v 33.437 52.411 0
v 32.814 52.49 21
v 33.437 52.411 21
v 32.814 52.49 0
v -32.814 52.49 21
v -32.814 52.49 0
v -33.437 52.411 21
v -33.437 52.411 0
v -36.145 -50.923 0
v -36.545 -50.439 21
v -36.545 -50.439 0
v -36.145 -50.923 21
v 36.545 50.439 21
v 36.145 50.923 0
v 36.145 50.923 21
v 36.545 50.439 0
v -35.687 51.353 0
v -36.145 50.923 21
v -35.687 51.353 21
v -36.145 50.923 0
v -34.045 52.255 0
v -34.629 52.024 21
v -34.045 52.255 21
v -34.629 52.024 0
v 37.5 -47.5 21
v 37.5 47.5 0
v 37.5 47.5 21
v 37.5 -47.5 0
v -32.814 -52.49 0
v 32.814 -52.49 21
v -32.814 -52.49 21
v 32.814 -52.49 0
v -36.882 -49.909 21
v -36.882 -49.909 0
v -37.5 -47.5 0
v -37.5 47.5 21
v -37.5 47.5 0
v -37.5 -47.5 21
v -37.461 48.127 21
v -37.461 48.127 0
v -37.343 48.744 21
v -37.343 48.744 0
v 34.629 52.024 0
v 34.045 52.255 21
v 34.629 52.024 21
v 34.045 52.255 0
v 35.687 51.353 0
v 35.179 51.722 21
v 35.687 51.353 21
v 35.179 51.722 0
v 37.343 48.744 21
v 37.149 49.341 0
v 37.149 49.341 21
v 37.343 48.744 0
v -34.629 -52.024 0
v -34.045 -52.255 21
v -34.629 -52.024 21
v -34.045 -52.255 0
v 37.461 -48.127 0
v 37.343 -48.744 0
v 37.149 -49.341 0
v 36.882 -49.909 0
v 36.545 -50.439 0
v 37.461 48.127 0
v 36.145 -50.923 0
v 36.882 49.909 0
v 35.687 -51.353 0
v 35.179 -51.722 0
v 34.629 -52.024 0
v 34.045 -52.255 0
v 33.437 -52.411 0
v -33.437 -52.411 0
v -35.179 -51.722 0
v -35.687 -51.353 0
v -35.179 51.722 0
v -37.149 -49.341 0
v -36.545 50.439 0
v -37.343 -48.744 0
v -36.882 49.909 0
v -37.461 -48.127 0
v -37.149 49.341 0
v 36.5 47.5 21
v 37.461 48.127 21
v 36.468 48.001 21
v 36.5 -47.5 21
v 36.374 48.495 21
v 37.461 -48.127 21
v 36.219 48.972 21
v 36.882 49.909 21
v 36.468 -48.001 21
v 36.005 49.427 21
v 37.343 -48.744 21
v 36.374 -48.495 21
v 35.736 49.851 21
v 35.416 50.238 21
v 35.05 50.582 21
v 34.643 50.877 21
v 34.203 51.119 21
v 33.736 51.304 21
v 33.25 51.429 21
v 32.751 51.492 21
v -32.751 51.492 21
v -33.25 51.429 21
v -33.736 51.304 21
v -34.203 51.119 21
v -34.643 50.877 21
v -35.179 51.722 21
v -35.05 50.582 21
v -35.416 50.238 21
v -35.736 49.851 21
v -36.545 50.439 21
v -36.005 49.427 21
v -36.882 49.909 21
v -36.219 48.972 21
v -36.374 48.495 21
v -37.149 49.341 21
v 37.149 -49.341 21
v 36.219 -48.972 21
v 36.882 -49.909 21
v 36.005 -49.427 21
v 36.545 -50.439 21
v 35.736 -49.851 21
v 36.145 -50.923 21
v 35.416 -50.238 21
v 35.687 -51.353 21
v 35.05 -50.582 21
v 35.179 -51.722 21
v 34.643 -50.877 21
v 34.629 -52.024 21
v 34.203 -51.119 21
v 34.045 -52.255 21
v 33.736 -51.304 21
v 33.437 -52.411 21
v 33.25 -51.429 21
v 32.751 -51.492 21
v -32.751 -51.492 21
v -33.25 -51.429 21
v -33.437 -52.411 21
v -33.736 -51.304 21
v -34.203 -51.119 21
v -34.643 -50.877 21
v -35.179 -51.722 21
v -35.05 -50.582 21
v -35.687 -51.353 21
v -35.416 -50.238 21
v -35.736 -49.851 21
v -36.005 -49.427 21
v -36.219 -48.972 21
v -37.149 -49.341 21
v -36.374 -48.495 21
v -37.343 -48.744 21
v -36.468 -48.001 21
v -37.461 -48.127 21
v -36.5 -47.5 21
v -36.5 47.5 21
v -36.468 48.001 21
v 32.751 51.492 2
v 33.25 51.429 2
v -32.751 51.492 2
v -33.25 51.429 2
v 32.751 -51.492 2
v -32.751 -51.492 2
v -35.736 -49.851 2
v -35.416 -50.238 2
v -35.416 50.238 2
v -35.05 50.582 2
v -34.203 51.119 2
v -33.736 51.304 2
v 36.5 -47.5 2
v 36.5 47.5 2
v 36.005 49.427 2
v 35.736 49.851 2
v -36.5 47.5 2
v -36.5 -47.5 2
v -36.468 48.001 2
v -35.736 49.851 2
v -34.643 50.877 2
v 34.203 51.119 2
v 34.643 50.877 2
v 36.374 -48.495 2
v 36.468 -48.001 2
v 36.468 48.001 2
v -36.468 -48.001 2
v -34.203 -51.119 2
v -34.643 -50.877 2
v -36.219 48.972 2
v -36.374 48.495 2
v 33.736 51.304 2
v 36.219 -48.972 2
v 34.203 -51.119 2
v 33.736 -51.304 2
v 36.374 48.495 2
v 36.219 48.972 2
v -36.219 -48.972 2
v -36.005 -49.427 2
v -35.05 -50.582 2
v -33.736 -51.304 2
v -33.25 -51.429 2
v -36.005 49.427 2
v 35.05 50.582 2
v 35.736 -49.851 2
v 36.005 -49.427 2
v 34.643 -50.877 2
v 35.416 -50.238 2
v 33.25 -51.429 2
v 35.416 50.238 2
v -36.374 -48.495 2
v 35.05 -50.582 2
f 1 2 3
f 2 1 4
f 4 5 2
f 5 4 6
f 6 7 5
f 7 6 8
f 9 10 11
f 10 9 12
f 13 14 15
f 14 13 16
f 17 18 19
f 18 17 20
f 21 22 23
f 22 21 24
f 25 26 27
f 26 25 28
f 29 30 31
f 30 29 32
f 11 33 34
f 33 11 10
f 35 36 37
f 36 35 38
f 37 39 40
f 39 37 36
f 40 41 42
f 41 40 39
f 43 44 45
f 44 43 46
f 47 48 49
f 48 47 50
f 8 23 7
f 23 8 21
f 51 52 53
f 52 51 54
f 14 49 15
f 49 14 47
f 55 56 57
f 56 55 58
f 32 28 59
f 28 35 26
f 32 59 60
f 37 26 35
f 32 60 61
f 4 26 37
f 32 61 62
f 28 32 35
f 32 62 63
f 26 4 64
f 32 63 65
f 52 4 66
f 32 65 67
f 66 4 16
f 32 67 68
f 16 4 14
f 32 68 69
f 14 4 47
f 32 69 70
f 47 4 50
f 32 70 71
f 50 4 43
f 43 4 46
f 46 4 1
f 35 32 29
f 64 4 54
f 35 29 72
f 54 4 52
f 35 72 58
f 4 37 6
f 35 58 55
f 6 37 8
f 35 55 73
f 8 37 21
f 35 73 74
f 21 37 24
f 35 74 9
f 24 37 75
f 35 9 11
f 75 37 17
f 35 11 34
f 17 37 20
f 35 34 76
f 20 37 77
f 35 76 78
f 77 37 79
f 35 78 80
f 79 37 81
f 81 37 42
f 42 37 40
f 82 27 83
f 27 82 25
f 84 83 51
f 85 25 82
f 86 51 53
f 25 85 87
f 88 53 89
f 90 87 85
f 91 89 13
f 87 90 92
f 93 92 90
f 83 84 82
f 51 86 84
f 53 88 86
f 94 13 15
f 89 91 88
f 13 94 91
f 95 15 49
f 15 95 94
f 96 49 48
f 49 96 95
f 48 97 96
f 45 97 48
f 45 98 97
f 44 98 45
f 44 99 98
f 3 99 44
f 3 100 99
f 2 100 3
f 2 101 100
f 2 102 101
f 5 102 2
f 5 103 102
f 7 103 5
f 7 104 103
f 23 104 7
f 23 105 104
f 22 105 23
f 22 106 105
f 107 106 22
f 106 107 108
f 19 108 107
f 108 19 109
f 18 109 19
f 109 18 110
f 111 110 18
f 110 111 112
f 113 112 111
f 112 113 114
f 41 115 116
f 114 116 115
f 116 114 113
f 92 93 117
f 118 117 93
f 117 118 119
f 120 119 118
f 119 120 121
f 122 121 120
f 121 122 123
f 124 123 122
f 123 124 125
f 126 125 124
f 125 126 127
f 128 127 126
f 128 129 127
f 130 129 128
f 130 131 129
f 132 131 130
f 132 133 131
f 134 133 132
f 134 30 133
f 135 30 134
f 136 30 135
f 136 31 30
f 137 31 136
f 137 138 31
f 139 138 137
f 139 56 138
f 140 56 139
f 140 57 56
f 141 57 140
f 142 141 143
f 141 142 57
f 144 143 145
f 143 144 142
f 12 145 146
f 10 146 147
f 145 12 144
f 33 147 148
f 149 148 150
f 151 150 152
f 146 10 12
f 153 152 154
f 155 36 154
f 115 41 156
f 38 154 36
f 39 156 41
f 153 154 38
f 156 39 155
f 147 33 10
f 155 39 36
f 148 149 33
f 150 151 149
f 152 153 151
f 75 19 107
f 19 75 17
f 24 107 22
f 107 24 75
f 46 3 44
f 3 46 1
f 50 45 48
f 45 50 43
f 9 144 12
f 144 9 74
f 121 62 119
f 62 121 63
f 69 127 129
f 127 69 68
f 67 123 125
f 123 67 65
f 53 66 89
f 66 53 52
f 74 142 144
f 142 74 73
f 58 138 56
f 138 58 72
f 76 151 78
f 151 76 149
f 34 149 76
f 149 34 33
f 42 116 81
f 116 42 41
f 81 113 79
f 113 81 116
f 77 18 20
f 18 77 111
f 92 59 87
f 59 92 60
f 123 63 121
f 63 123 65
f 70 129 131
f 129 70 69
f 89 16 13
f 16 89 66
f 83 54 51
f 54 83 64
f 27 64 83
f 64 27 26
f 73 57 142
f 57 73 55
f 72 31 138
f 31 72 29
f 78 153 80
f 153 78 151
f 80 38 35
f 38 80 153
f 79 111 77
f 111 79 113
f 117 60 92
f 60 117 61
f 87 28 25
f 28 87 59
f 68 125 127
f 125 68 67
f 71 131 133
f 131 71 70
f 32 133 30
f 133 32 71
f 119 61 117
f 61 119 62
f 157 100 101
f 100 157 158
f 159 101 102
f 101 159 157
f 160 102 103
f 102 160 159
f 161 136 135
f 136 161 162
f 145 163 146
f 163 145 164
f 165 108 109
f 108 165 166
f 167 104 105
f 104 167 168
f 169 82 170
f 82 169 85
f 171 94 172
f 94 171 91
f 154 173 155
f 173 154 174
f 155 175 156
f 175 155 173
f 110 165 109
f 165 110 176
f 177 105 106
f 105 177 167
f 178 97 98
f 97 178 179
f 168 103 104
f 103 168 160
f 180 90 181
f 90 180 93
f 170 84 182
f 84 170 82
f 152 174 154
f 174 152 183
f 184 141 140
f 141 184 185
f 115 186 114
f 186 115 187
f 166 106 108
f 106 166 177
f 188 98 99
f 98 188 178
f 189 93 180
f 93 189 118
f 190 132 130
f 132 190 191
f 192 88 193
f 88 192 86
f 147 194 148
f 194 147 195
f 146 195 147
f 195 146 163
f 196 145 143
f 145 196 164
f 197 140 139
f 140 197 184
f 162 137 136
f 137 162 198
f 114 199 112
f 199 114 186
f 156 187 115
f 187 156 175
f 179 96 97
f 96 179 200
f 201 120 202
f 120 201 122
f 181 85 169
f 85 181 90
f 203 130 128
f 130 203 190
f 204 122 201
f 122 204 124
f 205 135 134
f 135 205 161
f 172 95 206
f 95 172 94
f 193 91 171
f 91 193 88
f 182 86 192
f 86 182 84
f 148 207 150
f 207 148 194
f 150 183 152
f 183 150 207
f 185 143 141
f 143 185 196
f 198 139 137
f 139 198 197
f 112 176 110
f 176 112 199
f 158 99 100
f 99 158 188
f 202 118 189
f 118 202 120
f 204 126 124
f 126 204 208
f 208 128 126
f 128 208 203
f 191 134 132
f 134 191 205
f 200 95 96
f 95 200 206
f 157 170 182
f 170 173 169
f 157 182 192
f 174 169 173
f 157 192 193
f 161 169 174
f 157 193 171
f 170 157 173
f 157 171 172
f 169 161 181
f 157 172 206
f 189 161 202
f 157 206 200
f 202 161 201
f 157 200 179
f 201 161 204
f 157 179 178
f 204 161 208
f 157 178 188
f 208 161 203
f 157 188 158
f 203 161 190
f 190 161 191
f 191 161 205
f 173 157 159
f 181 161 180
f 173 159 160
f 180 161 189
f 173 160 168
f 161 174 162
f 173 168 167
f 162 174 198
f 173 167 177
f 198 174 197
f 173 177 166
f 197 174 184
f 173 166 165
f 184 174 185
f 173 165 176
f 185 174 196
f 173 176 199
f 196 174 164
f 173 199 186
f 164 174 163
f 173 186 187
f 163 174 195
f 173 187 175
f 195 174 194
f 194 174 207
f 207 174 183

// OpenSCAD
$fn = 50;


difference() {
	union() {
		hull() {
			translate(v = [-32.5000000000, 47.5000000000, 0]) {
				cylinder(h = 21, r = 5);
			}
			translate(v = [32.5000000000, 47.5000000000, 0]) {
				cylinder(h = 21, r = 5);
			}
			translate(v = [-32.5000000000, -47.5000000000, 0]) {
				cylinder(h = 21, r = 5);
			}
			translate(v = [32.5000000000, -47.5000000000, 0]) {
				cylinder(h = 21, r = 5);
			}
		}
	}
	union() {
		translate(v = [0, 0, 2]) {
			hull() {
				translate(v = [-32.5000000000, 47.5000000000, 0]) {
					cylinder(h = 19, r = 4);
				}
				translate(v = [32.5000000000, 47.5000000000, 0]) {
					cylinder(h = 19, r = 4);
				}
				translate(v = [-32.5000000000, -47.5000000000, 0]) {
					cylinder(h = 19, r = 4);
				}
				translate(v = [32.5000000000, -47.5000000000, 0]) {
					cylinder(h = 19, r = 4);
				}
			}
		}
	}
}
